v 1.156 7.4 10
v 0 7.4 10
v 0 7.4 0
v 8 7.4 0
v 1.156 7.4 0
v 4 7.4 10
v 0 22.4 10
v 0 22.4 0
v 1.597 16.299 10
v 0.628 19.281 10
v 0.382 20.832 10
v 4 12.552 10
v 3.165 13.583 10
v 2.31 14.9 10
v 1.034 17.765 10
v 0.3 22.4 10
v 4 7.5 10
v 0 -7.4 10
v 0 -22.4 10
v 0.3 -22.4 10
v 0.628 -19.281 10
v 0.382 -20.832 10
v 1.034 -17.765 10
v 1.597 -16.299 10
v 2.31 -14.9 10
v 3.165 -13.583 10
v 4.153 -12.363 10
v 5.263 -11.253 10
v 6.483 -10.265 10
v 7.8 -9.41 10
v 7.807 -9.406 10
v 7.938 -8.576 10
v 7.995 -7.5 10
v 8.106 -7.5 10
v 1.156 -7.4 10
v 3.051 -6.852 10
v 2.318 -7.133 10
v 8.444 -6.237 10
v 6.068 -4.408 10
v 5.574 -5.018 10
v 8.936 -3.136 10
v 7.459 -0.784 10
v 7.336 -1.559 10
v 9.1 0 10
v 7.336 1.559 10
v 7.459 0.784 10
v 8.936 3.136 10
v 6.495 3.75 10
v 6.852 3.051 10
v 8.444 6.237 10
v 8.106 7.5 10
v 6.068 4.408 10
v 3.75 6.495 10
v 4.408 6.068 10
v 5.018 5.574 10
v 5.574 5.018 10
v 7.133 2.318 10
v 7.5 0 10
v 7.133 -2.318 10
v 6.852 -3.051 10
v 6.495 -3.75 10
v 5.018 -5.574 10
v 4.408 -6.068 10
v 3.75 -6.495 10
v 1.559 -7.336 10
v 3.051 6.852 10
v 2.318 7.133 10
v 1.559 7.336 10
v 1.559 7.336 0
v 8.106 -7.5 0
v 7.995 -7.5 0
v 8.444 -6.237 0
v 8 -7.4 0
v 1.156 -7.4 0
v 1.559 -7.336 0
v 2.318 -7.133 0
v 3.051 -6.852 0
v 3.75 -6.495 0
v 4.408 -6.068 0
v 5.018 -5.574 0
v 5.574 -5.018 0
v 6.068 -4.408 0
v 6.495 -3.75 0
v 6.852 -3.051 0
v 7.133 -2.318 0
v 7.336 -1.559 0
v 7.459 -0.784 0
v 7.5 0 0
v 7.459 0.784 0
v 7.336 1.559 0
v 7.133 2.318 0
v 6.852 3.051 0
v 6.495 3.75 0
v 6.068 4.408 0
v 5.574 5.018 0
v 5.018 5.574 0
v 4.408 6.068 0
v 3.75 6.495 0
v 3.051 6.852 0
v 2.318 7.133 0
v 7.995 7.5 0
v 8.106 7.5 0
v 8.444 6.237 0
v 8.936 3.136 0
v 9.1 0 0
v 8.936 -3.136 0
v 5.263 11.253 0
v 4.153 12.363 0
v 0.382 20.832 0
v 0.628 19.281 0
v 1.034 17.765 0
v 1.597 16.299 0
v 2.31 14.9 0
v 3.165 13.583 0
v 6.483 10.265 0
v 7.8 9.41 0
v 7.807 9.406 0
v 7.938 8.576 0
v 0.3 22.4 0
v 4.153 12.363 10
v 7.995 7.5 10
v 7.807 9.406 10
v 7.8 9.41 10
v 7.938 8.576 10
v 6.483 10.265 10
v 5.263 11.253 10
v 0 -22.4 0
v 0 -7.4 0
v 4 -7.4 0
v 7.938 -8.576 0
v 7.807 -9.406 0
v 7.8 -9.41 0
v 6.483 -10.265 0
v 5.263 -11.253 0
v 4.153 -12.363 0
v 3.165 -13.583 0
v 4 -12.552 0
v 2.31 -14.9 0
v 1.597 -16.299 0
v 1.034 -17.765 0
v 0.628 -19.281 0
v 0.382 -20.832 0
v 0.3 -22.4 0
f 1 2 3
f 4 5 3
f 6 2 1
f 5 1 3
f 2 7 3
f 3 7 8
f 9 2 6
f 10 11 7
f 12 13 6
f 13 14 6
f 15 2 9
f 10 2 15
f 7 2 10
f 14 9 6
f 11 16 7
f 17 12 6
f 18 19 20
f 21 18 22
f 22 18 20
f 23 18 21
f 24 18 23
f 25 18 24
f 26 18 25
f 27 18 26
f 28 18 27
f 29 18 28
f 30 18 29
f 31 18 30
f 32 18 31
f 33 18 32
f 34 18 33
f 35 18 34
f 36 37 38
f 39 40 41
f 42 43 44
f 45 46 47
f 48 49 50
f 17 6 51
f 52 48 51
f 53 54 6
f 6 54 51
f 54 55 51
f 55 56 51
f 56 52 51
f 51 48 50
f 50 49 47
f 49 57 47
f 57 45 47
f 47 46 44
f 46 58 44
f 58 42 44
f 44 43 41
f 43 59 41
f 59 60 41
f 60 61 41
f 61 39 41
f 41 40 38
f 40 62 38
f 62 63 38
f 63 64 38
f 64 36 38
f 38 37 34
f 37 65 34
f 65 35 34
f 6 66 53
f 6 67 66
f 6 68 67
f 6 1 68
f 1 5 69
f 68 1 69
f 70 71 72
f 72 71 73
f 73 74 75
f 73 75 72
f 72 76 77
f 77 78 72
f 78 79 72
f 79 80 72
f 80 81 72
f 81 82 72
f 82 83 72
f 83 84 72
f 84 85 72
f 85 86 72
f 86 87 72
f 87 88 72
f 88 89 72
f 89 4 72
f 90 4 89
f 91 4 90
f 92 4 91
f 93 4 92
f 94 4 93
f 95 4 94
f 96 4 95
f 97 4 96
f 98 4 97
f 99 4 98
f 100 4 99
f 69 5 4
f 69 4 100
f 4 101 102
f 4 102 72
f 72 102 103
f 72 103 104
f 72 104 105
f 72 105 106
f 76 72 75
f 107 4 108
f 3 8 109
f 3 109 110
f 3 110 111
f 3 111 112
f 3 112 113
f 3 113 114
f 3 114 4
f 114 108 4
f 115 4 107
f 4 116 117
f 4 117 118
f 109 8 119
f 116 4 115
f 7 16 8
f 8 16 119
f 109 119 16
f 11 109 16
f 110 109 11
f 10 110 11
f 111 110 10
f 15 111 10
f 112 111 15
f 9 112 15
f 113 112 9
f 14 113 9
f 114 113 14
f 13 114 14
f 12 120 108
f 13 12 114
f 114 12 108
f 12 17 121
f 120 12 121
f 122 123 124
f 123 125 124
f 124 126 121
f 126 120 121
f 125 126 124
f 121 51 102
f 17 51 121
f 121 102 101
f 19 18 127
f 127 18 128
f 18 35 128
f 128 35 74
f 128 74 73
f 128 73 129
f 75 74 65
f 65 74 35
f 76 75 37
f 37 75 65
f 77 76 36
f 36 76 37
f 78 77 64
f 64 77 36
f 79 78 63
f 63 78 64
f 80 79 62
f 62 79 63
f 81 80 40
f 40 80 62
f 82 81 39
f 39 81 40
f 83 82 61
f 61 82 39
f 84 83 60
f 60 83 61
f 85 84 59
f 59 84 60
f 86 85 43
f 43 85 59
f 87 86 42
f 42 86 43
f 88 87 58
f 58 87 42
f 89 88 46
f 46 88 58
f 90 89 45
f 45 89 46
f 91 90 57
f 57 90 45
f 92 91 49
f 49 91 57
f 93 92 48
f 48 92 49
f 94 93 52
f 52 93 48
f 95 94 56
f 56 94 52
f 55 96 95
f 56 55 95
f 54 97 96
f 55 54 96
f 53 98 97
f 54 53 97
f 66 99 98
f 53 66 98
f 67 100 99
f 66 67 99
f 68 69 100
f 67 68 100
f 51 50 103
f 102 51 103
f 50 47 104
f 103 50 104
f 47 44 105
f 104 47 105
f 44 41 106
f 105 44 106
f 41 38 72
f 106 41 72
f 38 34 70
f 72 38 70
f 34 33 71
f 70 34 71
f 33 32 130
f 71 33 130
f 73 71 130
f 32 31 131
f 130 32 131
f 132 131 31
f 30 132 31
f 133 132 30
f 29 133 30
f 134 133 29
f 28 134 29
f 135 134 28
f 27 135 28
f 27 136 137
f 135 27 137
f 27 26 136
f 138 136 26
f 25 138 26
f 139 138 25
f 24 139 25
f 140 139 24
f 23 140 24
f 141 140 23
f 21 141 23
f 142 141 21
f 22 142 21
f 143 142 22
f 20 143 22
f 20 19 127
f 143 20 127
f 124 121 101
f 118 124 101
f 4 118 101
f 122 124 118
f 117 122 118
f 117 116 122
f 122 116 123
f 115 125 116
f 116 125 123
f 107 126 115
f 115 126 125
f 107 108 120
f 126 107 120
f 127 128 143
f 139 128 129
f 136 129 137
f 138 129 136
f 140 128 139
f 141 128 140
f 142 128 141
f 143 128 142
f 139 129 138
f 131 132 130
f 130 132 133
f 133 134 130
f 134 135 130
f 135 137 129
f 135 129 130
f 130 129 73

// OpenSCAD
// bridge.scad
// OpenSCAD Bridge Design
// 
// Copyright (C) 2013 Christopher Roberts
//
// This program is free software: you can redistribute it and/or modify
// it under the terms of the GNU General Public License as published by
// the Free Software Foundation, either version 3 of the License, or
// (at your option) any later version.
// 
// This program is distributed in the hope that it will be useful,
// but WITHOUT ANY WARRANTY; without even the implied warranty of
// MERCHANTABILITY or FITNESS FOR A PARTICULAR PURPOSE.  See the
// GNU General Public License for more details.
// 
// You should have received a copy of the GNU General Public License
// along with this program.  If not, see <http://www.gnu.org/licenses/>.


// Bridge Parameters
height   =  8; // Height of bridge
width    = 10; // Width of bridge
river    = 15; // Width of river
ramp     = 15; // Length of ramp
layer    = 0.3; // Printer layer height
circular = 60; // Circular precision

module bridge() {

    difference() {

        // Things that exist
        union() {
            intersection() {
                translate( v = [-width/2, -river/2, 0] ) {
                    cube( size = [width, river, height*2] );
                }
                translate( v = [ -width/2, 0, (height -river*2) * 0.950]) {
                    rotate( a = [ 90, 0, 90] ) {
                        cylinder( r = river*2, h = width, $fn = circular );
                    }
                }
            }
        }

        // Things that don't exist
        // Needs formula to cope with various river widths and bridge heights
        //                                     |
        union() { //                           v
            translate( v = [ -width/2 -0.1, 0, 0]) {
                rotate( a = [ 90, 0, 90] ) {
                    cylinder( r = river/2, h = width + 0.2, $fn = circular );
                }
            }
        }
    
    }

}

module ramp() {

    translate( v = [ -width/2, -ramp/2, 0] ) {
        difference() {

            // Things that exist
            union() {
                intersection() {
                    cube( [ width, ramp, height ] );
                    translate( v = [ 0, ramp, -ramp*0.75 + height] ) {
                        rotate( a = [ 90, 0, 90] ) {
                            cylinder( r = ramp*0.75, h = width, $fn = circular );
                        }
                    }
                }
                cube( [ width, ramp, height/2 ] );
            }

            // Things to be cut out
            union() {
                translate( v = [ -0.1, 0, ramp + layer]) {
                    rotate( a = [ 90, 0, 90] ) {
                        cylinder( r = ramp, h = width + 0.2, $fn = circular );
                    }
                }
            }
        }
    }

}

module complete() {

    // Things that exist
    union() {
        translate( v = [ 0, -ramp/2 -river/2 +0.1, 0 ]) {
            ramp();
        }
        bridge();
        translate( v = [ 0, +ramp/2 +river/2 -0.1, 0 ]) {
            rotate( a = [0,0,180] ) {
                ramp();
            }
        }
    }

}

translate( v = [ 0, 0, width/2] ) {
    rotate( a = [0, 90, 0] ) {
        complete();
    }
}

// -------------------------------------------------------------------------------------------
// Commands
// -------------------------------------------------------------------------------------------

// http://en.wikibooks.org/wiki/OpenSCAD_User_Manual

// primitives
// cube(size = [1,2,3], center = true);
// sphere( r = 10, $fn=100 );
// circle( r = 10 );
// cylinder( h = 10, r = 20, $fs = 6, center = true );
// cylinder( h = 10, r1 = 10, r2 = 20, $fs = 6, center = false );
// polyhedron(points = [ [x, y, z], ... ], triangles = [ [p1, p2, p3..], ... ], convexity = N);
// polygon(points = [ [x, y], ... ], paths = [ [p1, p2, p3..], ... ], convexity = N);

// transormations
// scale(v = [x, y, z]) { ... }
// rotate(a=[0,180,0]) { ... }
// translate(v = [x, y, z]) { ... }
// mirror([ 0, 1, 0 ]) { ... }

// rounded box by combining a cube and single cylinder
// $fn=50;
// minkowski() {
//   cube([10,10,1]);
//   cylinder(r=2,h=1);
// }

// hull() {
//   translate([15,10,0]) circle(10);
//   circle(10);
// }

// linear_extrude(height=1, convexity = 1) import("tridentlogo.dxf");
// deprecated - dxf_linear_extrude(file="tridentlogo.dxf", height = 1, center = false, convexity = 10);
// deprecated - import_dxf(file="design.dxf", layer="layername", origin = [100,100], scale = 0.5);
// linear_extrude(height = 10, center = true, convexity = 10, twist = 0, $fn = 100)
// rotate_extrude(convexity = 10, $fn = 100)
// import_stl("example012.stl", convexity = 5);

// for (z = [-1, 1] ) { ... } // two iterations, z = -1, z = 1
// for (z = [ 0 : 5 ] ) { ... } // range of interations step 1
// for (z = [ 0 : 2 : 5 ] ) { ... } // range of interations step 2

// for (i = [ [ 0, 0, 0 ], [...] ] ) { ... } // range of rotations or vectors
// usage say rotate($i) or translate($i)
// if ( x > y ) { ... } else { ... }
// assign (angle = i*360/20, distance = i*10, r = i*2)

// text http://www.thingiverse.com/thing:25036
// inkscape / select all items
// objects to path
// select the object to export
// extensions / generate from path / paths to openscad
